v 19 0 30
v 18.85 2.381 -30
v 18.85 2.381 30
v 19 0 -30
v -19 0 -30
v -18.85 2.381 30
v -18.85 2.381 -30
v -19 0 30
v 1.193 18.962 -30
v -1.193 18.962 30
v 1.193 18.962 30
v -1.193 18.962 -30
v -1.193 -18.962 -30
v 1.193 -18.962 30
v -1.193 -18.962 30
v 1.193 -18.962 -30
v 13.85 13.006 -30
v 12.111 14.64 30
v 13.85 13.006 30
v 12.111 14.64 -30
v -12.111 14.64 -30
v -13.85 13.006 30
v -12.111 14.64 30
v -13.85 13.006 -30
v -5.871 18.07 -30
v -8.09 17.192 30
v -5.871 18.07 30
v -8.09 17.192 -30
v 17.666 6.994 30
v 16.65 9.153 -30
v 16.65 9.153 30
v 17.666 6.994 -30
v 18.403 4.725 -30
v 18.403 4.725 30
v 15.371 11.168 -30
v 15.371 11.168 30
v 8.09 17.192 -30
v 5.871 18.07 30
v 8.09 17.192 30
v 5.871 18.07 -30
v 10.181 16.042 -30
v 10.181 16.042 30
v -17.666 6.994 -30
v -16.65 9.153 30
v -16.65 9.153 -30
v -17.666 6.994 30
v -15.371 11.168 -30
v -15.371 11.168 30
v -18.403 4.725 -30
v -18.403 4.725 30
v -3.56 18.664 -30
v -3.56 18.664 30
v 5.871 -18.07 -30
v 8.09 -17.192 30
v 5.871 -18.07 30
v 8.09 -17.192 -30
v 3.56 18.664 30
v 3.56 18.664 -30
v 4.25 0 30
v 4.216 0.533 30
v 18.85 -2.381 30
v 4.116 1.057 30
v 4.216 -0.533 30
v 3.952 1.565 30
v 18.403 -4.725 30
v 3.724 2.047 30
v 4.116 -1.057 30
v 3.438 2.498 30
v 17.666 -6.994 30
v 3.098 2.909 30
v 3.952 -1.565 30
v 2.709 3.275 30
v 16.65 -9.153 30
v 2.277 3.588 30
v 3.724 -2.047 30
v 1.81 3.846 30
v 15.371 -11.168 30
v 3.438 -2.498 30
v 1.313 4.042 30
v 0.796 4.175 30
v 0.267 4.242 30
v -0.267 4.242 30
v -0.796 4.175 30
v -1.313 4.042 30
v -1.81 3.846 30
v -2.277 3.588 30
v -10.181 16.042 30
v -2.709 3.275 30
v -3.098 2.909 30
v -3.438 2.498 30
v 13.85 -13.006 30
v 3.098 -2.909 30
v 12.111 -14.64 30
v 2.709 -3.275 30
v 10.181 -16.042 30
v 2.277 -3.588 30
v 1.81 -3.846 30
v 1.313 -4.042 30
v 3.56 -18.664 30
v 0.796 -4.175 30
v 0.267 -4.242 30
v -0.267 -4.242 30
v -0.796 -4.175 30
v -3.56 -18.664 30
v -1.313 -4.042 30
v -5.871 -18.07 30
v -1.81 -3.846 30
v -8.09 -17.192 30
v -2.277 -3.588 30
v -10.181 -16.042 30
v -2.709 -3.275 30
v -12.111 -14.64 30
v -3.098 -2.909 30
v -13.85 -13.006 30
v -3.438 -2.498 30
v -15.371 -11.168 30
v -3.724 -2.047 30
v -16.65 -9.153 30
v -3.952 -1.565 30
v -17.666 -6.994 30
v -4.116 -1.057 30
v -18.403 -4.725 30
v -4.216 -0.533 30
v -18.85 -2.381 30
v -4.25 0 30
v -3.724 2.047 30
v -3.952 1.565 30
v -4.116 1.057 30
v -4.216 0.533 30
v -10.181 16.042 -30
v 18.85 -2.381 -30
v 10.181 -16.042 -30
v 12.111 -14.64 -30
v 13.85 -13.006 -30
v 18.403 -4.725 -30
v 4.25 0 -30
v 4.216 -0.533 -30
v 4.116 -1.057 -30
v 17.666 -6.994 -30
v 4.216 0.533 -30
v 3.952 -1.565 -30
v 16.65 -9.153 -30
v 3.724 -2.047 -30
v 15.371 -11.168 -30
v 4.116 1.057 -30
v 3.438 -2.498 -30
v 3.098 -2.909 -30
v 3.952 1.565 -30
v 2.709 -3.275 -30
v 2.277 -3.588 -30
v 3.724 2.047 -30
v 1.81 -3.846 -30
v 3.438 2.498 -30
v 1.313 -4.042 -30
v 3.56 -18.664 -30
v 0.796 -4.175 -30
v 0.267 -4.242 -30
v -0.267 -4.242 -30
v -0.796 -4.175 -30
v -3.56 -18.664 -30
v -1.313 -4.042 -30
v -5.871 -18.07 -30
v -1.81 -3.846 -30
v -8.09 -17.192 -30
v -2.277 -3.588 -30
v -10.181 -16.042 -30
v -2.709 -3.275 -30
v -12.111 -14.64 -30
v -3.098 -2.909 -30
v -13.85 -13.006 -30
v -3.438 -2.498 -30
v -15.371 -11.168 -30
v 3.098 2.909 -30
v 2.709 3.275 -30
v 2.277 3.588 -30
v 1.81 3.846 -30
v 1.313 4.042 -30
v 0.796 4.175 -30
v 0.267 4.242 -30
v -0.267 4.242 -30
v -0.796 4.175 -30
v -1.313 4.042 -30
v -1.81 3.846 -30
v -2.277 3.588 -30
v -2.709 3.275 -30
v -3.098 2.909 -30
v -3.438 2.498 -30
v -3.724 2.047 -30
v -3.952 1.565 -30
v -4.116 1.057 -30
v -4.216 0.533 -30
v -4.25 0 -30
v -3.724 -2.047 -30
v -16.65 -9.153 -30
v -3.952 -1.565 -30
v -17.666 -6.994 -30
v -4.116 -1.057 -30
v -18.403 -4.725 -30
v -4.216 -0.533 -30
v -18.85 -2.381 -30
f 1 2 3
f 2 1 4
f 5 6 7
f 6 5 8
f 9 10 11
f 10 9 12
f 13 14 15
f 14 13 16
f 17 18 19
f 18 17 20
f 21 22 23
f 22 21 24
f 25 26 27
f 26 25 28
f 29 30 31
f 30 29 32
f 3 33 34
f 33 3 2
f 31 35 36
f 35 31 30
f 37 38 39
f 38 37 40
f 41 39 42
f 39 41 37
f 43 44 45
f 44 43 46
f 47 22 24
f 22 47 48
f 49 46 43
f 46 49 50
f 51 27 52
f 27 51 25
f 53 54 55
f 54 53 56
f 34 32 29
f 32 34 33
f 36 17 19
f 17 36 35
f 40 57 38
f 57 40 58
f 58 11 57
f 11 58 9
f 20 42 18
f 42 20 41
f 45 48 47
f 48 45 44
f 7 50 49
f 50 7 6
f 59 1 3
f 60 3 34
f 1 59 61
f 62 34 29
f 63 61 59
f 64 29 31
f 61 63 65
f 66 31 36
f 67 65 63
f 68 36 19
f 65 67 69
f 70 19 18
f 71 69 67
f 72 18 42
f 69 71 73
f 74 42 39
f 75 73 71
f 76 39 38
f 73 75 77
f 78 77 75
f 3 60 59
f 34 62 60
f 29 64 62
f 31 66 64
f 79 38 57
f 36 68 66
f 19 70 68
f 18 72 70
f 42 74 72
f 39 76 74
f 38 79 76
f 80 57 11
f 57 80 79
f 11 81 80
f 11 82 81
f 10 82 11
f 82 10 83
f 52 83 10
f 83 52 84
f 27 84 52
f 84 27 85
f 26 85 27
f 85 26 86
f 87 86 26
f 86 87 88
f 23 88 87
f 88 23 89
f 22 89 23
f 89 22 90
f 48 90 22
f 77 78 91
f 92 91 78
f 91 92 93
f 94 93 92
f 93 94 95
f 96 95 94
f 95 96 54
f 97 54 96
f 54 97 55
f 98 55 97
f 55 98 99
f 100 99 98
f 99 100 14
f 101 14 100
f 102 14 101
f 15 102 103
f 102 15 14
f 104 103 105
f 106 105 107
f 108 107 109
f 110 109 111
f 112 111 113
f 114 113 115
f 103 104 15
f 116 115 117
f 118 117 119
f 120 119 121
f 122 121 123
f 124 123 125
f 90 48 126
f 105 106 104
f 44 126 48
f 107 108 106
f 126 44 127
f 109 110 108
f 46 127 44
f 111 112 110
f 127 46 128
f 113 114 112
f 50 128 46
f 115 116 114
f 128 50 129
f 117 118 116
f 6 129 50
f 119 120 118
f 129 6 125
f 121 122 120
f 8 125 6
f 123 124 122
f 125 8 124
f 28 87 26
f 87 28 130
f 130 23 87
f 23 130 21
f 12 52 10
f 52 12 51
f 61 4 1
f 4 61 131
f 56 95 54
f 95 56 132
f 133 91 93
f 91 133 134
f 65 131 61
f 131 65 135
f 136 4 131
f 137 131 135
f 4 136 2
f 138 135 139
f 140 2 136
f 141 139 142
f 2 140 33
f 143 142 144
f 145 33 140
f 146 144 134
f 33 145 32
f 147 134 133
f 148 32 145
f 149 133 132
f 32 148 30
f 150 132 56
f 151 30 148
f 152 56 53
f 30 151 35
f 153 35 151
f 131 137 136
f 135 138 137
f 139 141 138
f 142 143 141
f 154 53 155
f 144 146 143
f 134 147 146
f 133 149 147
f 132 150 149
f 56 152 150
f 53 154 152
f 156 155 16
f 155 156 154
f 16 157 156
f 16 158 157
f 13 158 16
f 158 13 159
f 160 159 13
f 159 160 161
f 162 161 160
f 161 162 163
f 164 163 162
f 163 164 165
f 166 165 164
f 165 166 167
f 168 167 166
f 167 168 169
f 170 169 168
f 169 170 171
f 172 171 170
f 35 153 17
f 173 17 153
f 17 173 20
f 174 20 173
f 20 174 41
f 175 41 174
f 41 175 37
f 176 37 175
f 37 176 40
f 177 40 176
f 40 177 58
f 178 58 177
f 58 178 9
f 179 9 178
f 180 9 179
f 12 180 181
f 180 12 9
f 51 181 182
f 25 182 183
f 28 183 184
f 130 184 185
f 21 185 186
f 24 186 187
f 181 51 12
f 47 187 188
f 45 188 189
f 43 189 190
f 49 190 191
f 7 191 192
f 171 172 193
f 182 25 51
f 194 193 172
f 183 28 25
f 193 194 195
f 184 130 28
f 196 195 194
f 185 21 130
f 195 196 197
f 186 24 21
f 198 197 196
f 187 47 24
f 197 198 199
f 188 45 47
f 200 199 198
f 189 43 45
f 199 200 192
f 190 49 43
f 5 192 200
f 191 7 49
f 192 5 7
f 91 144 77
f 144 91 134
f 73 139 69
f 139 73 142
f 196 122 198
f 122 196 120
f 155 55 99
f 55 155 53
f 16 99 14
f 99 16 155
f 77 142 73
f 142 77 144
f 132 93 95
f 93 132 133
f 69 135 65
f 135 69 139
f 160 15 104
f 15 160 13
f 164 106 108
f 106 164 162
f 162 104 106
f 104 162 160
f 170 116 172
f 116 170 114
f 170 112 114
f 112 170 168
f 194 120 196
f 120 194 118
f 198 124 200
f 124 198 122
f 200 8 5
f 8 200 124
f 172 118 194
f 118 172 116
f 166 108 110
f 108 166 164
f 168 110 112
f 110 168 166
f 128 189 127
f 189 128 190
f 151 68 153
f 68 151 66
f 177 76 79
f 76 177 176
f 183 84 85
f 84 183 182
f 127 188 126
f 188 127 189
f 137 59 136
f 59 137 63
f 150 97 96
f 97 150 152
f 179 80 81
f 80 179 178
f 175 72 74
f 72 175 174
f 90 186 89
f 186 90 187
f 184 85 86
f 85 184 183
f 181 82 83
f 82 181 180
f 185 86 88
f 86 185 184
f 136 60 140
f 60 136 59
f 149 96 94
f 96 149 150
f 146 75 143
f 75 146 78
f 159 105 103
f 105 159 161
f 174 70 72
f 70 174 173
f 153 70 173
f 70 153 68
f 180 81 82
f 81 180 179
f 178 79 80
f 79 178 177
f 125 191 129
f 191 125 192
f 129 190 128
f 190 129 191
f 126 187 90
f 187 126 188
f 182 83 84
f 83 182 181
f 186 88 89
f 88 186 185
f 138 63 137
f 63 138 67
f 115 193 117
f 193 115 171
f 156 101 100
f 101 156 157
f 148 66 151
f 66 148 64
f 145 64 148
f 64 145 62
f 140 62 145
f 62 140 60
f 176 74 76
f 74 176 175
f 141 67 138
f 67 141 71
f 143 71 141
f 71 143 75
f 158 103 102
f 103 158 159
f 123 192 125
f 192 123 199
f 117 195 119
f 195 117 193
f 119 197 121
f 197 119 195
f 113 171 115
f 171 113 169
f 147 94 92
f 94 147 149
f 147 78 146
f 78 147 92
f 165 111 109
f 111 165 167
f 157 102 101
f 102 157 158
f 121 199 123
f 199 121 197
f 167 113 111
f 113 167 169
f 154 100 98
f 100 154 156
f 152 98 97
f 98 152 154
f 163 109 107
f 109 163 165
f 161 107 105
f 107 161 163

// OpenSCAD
$fn = 50;


difference() {
	union() {
		translate(v = [0, 0, -30.0000000000]) {
			cylinder(h = 60, r = 19.0000000000);
		}
	}
	union() {
		translate(v = [0, 0, -100.0000000000]) {
			cylinder(h = 200, r = 4.2500000000);
		}
	}
}
